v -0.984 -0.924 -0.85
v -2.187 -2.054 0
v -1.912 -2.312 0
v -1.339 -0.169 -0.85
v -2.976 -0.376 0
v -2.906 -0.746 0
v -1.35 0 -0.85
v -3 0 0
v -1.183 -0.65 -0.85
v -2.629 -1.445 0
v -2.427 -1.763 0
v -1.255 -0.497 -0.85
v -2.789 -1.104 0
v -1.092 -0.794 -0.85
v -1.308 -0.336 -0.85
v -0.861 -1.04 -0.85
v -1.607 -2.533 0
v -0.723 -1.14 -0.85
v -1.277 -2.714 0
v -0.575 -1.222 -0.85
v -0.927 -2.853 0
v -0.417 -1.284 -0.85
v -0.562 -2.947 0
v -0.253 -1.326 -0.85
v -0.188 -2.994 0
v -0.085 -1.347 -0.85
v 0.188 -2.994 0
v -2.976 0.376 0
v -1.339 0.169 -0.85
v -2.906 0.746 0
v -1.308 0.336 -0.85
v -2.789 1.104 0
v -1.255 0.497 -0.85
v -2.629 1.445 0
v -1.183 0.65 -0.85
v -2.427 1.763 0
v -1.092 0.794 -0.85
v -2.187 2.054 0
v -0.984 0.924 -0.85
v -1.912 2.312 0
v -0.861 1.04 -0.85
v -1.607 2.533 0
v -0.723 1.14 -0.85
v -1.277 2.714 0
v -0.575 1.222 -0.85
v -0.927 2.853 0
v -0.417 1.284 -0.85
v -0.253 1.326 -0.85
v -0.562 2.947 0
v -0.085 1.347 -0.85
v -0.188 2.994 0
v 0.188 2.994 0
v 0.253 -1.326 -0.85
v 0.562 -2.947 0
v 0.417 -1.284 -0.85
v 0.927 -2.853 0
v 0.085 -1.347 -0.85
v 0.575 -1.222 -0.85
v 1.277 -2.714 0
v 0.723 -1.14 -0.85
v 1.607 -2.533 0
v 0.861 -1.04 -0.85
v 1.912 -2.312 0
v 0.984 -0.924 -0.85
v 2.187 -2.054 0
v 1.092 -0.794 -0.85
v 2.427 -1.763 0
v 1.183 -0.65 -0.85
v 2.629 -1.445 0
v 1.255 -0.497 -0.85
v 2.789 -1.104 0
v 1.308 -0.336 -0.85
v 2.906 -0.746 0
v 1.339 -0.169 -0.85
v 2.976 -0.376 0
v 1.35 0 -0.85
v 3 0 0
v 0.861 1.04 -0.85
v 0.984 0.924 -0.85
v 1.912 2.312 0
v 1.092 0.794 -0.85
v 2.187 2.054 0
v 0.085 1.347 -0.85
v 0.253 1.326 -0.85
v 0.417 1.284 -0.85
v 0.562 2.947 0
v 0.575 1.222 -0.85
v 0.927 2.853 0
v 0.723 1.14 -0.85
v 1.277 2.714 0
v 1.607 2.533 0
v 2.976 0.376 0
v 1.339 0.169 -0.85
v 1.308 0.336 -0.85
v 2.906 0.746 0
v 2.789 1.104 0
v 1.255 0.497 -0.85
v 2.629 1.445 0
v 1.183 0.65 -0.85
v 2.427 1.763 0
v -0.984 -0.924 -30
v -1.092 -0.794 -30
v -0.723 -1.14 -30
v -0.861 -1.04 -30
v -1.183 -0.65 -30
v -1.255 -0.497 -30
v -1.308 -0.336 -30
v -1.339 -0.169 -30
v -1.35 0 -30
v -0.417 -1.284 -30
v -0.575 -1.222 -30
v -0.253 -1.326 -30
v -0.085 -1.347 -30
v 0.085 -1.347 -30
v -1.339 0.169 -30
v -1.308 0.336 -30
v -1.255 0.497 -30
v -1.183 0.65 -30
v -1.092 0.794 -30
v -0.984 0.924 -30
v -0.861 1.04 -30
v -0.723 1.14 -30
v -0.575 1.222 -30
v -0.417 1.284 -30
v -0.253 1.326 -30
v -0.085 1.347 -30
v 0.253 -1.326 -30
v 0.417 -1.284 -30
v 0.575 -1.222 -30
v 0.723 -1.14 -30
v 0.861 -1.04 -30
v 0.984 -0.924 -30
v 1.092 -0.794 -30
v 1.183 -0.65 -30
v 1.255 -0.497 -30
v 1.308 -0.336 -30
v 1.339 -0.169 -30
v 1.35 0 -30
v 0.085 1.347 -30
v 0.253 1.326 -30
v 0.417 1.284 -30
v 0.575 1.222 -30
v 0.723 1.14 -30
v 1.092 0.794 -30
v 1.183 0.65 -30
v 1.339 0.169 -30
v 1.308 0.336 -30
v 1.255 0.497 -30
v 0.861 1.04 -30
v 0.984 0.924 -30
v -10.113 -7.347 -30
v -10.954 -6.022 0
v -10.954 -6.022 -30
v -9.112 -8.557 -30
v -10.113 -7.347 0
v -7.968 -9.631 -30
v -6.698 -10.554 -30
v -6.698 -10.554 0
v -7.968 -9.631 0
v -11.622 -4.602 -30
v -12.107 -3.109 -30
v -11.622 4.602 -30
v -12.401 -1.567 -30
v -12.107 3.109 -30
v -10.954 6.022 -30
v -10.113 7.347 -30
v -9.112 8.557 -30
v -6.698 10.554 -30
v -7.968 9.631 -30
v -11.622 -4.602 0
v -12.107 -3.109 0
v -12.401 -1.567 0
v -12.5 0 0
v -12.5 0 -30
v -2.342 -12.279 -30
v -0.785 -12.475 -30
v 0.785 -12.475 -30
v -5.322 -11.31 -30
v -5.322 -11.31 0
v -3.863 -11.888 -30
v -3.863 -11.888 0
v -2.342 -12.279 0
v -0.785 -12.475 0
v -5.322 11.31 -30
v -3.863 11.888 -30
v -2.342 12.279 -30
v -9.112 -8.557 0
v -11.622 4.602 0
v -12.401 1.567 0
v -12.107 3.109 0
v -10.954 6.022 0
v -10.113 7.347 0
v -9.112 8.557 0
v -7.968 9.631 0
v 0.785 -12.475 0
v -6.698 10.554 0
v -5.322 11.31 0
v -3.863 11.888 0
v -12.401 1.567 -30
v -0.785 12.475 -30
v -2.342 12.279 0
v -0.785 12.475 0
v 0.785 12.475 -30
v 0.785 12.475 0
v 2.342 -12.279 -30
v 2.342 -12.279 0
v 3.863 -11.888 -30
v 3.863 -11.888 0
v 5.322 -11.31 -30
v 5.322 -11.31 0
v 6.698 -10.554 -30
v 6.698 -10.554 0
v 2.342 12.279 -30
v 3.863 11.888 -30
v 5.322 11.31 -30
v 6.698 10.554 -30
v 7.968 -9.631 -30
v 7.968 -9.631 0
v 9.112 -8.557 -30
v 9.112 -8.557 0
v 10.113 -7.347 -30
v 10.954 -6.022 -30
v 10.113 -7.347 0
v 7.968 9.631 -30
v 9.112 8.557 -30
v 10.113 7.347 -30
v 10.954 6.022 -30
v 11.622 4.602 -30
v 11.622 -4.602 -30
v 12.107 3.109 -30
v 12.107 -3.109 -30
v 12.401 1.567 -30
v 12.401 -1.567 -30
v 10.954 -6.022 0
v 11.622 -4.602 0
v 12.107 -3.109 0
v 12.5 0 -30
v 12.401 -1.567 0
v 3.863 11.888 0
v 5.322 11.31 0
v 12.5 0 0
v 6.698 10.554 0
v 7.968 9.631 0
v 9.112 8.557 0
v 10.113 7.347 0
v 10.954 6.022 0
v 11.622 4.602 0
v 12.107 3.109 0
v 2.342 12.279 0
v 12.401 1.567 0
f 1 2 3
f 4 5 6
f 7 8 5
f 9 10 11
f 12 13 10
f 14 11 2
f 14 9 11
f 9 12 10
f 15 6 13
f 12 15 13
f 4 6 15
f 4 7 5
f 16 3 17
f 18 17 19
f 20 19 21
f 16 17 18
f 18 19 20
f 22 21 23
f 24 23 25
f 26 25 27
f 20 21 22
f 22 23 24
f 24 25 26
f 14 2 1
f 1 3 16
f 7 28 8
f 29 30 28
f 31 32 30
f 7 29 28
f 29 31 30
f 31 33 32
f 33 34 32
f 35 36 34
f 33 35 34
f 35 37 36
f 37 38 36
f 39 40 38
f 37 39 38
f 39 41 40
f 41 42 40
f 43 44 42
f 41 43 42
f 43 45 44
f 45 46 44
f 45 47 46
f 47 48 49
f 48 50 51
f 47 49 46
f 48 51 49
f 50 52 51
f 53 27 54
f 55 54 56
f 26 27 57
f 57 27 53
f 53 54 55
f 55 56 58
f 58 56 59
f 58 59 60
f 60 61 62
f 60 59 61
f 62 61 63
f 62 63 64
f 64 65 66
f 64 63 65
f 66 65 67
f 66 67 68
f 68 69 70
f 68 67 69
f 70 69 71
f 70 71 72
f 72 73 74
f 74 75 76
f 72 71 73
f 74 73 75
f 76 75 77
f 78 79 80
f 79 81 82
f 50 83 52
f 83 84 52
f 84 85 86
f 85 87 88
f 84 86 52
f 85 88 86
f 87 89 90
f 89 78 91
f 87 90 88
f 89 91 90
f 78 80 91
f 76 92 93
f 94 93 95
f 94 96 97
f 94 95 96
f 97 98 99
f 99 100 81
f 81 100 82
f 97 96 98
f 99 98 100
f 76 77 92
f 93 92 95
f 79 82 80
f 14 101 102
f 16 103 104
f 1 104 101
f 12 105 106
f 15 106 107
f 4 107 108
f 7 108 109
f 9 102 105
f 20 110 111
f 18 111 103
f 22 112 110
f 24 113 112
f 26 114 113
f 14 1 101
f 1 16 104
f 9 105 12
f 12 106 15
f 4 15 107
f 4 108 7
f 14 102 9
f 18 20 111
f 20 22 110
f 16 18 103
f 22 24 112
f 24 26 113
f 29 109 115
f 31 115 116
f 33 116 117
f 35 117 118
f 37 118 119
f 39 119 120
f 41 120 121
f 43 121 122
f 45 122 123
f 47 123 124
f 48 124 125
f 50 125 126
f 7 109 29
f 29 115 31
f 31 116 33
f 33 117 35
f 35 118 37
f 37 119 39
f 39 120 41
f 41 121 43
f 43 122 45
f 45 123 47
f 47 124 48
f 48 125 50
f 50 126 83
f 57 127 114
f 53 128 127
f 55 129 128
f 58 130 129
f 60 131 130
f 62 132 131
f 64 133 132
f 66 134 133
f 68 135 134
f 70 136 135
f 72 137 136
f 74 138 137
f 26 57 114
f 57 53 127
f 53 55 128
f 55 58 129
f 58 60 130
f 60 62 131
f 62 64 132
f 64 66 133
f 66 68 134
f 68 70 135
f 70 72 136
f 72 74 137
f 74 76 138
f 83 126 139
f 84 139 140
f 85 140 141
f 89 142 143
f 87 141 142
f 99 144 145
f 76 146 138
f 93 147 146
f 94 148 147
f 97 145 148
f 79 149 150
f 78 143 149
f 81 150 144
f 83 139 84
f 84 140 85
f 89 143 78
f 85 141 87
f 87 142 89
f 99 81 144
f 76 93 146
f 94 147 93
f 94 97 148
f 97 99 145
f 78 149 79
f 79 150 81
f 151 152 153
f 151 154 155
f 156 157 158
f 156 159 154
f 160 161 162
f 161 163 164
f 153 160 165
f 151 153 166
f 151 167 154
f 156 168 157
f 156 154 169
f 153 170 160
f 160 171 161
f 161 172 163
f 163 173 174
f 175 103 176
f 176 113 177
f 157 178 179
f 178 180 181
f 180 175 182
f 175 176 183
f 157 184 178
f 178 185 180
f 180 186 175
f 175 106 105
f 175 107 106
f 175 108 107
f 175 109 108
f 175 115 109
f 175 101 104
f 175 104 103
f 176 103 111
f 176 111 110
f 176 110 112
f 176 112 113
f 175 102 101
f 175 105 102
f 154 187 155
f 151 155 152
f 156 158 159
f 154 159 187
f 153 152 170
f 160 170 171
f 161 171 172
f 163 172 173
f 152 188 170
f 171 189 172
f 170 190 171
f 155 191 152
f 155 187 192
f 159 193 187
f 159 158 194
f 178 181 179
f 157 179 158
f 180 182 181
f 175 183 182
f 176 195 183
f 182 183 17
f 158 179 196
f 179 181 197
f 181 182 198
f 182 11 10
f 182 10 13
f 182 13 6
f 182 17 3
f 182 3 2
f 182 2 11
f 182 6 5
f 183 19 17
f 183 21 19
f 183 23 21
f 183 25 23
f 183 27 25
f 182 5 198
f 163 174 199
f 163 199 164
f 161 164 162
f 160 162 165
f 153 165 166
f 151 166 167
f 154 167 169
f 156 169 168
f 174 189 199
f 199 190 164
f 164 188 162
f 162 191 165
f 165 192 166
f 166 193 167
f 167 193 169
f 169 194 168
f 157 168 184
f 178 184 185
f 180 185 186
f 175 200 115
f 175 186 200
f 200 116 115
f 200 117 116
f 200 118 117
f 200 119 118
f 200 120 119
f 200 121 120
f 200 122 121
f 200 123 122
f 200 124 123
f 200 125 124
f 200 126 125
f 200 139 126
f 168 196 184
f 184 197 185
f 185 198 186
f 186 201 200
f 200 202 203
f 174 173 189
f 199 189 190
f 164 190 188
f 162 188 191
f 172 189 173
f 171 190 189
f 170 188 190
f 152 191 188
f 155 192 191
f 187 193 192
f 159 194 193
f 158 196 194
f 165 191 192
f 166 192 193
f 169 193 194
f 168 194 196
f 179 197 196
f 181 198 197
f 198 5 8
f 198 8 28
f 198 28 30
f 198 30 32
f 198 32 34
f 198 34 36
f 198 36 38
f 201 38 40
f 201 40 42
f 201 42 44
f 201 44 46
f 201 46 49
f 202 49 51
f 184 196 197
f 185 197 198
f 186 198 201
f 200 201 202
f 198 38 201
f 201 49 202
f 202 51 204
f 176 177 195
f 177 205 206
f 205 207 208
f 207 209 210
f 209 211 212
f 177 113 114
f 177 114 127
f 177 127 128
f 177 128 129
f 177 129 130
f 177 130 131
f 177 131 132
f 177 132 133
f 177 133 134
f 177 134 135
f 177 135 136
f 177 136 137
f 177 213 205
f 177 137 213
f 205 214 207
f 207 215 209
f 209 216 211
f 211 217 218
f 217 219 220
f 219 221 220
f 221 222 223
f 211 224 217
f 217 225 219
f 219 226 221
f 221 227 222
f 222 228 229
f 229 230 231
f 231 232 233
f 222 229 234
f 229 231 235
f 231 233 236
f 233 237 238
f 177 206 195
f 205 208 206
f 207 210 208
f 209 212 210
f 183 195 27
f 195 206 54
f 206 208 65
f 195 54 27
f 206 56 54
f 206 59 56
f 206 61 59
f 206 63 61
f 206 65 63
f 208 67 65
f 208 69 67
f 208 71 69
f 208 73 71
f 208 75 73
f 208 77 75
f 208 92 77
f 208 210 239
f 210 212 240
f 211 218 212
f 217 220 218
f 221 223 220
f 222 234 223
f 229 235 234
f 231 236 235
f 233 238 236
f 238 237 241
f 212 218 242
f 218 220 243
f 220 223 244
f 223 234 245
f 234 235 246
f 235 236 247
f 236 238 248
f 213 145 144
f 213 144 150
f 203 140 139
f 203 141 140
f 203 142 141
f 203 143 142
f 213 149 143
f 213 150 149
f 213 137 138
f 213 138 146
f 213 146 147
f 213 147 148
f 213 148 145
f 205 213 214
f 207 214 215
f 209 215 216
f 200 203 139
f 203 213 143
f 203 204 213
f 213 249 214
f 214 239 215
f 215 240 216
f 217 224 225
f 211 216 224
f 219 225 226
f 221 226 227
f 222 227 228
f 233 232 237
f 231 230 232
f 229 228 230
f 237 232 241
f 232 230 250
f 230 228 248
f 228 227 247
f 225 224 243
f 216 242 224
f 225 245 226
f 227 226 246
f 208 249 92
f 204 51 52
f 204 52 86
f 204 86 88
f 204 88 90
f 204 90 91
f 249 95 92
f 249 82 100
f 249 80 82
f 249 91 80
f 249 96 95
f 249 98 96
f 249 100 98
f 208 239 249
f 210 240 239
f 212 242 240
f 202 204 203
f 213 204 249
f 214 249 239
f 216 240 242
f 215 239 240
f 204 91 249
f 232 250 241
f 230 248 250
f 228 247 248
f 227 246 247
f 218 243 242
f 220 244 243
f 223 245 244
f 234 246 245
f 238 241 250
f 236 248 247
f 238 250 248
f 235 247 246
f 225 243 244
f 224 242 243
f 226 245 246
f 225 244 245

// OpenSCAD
$fn = 50;


difference() {
	union() {
		translate(v = [0, 0, -30.0000000000]) {
			cylinder(h = 30, r = 12.5000000000);
		}
	}
	union() {
		translate(v = [0, 0, 0]) {
			rotate(a = [0, 0, 0]) {
				difference() {
					union() {
						translate(v = [0, 0, -33.0000000000]) {
							cylinder(h = 33, r = 1.0000000000);
						}
						translate(v = [0, 0, -0.8500000000]) {
							cylinder(h = 0.8500000000, r1 = 1.3500000000, r2 = 3.0000000000);
						}
						translate(v = [0, 0, -33.0000000000]) {
							cylinder(h = 33, r = 1.3500000000);
						}
						translate(v = [0, 0, -33.0000000000]) {
							cylinder(h = 33, r = 1.0000000000);
						}
					}
					union();
				}
			}
		}
	}
}
